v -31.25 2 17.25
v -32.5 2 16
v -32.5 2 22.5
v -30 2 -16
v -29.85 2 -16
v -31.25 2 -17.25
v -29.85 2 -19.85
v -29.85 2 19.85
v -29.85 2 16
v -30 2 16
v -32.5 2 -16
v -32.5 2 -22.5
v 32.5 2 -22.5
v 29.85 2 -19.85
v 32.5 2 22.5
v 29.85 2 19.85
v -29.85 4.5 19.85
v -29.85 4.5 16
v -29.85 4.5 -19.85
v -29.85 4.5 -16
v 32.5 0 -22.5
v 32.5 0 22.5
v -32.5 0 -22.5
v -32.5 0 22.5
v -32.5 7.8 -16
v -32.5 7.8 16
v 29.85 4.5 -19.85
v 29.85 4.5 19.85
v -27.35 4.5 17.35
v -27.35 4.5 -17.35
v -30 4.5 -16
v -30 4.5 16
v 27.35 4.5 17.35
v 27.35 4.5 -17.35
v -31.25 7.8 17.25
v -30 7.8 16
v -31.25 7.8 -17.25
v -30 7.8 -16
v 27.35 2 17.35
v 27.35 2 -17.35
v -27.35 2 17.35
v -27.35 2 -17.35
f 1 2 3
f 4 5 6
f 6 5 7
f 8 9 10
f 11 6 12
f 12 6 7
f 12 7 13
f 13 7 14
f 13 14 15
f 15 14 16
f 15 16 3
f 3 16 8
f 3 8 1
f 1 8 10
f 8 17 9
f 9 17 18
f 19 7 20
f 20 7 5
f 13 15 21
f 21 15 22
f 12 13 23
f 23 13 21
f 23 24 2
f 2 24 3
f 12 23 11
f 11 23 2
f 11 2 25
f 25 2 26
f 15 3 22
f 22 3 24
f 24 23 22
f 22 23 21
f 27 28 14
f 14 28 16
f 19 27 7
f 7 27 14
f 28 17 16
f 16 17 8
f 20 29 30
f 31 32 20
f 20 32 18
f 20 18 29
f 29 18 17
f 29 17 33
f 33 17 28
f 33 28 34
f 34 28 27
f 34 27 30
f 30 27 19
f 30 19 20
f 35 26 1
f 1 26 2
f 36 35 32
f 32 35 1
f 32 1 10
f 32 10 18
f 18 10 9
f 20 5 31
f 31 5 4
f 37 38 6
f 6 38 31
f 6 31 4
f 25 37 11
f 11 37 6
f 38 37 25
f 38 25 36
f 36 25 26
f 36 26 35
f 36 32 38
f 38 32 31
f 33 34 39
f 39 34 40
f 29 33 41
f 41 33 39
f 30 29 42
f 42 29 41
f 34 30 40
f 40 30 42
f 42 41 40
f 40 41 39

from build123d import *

# Parameters (mm, degrees)
SKETCH_1_W          = 65
SKETCH_1_H          = 45
EXTRUDE_1_DEPTH     = 2
SKETCH_2_W          = 59.7
SKETCH_2_H          = 39.7
EXTRUDE_2_DEPTH     = 2.5
EXTRUDE_3_DEPTH     = 5.8
SKETCH_4_W          = 0.15
SKETCH_4_H          = 32
CUT_EXTRUDE_1_DEPTH = 3.3
SKETCH_5_W          = 54.7
SKETCH_5_H          = 34.7
CUT_EXTRUDE_2_DEPTH = 2.5


with BuildPart() as part:
    # 草图1 → 凸台-拉伸1 (new body)
    with BuildSketch(Plane(origin=(0, 0, 0), x_dir=(1, 0, 0), z_dir=(0, 1, 0))):
        Rectangle(SKETCH_1_W, SKETCH_1_H)
    extrude(amount=EXTRUDE_1_DEPTH)

    # 草图2 → 凸台-拉伸2 (add)
    with BuildSketch(Plane(origin=(0, 2, 0), x_dir=(1, 0, 0), z_dir=(0, 1, 0))):
        Rectangle(SKETCH_2_W, SKETCH_2_H)
    extrude(amount=EXTRUDE_2_DEPTH)

    # 草图3 → 凸台-拉伸3 (add)
    with BuildSketch(Plane(origin=(0, 2, 0), x_dir=(1, 0, 0), z_dir=(0, 1, 0))):
        Polygon((-30, -16), (-29.85, -16), (-29.85, 16), (-30, 16), (-31.25, 17.25), (-32.5, 16), (-32.5, -16), (-31.25, -17.25), align=None)
    extrude(amount=EXTRUDE_3_DEPTH)

    # 草图4 → 切除-拉伸1 (cut)
    with BuildSketch(Plane(origin=(0, 7.8, 0), x_dir=(1, 0, 0), z_dir=(0, 1, 0))):
        with Locations((-29.925, 0)):
            Rectangle(SKETCH_4_W, SKETCH_4_H)
    extrude(amount=-CUT_EXTRUDE_1_DEPTH, mode=Mode.SUBTRACT)

    # 草图5 → 切除-拉伸2 (cut)
    with BuildSketch(Plane(origin=(0, 4.5, 0), x_dir=(1, 0, 0), z_dir=(0, 1, 0))):
        Rectangle(SKETCH_5_W, SKETCH_5_H)
    extrude(amount=-CUT_EXTRUDE_2_DEPTH, mode=Mode.SUBTRACT)


solid = part.part
